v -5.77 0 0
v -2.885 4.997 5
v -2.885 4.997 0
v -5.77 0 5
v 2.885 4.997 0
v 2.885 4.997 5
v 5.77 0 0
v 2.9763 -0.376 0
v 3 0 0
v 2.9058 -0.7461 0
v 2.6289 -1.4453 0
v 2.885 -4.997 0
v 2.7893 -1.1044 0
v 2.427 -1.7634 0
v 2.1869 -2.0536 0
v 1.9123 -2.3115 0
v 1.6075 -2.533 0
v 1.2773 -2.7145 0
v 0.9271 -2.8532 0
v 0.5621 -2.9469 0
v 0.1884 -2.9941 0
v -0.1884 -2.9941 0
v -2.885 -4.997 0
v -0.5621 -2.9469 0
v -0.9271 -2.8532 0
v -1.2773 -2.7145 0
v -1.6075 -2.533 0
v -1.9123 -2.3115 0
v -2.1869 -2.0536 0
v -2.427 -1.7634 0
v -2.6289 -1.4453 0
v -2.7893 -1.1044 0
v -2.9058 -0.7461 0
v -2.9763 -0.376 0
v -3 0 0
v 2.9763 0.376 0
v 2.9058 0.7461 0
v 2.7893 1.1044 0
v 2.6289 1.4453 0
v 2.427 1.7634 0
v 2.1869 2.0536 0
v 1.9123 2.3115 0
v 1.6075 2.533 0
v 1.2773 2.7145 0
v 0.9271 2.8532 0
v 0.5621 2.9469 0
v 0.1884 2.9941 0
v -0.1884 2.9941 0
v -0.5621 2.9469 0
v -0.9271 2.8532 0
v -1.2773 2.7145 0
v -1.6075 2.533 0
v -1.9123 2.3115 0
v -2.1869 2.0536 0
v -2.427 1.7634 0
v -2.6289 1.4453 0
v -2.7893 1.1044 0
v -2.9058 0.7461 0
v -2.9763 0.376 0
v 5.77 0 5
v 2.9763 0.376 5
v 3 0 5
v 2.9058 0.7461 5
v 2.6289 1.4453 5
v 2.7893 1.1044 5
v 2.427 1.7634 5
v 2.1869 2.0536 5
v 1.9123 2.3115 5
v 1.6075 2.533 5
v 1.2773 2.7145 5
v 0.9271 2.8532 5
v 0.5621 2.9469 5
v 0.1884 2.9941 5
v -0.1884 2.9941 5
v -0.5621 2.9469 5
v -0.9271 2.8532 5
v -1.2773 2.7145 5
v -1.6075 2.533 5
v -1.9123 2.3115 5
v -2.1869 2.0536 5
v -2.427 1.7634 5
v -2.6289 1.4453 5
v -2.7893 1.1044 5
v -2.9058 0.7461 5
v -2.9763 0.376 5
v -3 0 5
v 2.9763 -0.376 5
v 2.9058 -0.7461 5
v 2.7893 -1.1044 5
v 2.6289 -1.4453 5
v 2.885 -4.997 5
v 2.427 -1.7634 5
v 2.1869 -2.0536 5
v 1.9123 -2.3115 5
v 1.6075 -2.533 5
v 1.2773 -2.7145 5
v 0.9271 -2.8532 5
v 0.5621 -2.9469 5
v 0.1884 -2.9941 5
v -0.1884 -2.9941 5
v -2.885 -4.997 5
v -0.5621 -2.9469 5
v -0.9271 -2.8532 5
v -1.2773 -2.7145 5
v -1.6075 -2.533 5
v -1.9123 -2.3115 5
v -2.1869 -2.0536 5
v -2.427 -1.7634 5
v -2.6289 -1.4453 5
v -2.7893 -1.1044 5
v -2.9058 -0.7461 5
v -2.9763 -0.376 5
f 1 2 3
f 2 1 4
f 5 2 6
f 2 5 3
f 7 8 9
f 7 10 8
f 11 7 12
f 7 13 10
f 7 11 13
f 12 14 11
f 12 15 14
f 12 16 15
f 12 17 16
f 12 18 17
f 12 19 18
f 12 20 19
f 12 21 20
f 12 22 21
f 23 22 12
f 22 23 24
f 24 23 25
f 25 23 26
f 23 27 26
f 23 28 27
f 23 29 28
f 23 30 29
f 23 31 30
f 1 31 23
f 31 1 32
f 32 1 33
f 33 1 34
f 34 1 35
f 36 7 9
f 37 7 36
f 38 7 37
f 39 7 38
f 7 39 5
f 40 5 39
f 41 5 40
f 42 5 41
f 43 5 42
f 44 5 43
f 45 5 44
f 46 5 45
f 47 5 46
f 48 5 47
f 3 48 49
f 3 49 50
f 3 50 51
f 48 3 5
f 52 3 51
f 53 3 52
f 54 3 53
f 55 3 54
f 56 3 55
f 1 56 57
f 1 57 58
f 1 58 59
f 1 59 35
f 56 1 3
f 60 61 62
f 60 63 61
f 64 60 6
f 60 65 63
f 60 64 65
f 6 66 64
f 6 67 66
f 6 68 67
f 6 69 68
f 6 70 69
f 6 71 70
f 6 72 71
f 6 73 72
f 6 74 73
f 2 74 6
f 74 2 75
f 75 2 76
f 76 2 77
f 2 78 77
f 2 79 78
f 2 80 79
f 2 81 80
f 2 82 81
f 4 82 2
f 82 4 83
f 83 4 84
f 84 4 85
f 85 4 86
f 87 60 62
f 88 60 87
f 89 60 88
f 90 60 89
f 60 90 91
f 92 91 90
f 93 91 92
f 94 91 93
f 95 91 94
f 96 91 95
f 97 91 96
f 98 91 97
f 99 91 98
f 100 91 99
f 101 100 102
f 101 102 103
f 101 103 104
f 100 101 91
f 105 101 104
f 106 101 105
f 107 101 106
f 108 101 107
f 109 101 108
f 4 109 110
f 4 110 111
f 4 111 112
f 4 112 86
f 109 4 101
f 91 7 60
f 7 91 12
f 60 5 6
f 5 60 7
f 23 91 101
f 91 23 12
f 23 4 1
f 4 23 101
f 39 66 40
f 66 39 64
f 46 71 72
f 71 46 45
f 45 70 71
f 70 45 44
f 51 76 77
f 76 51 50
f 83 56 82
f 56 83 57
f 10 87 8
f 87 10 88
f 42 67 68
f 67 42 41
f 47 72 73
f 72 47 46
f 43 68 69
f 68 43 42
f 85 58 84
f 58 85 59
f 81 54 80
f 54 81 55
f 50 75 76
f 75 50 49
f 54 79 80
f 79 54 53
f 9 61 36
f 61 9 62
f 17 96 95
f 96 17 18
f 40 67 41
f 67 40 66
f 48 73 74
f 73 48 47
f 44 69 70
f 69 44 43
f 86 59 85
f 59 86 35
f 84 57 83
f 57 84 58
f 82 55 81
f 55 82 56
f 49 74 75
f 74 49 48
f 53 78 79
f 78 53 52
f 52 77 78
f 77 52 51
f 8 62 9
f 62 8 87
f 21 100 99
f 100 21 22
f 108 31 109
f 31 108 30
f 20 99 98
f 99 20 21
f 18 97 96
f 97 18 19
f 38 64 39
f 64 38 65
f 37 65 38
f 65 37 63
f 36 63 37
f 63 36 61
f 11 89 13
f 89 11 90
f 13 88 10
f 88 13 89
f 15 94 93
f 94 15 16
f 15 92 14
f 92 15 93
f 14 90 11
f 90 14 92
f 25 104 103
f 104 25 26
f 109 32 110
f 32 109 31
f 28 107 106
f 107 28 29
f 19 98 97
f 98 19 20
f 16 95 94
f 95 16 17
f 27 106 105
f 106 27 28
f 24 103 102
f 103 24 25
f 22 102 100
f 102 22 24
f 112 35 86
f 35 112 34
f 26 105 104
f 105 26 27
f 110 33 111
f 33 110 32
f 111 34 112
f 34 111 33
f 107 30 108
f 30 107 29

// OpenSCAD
$fn = 50;


difference() {
	union() {
		translate(v = [0, 0, 0]) {
			rotate(a = [0, 0, 0]) {
				#translate(v = [0, 0, 0]) {
					rotate(a = [0, 0, 0]) {
						linear_extrude(height = 5) {
							polygon(points = [[5.7700000000, 0.0000000000], [2.8850000000, 4.9969665798], [-2.8850000000, 4.9969665798], [-5.7700000000, 0.0000000000], [-2.8850000000, -4.9969665798], [2.8850000000, -4.9969665798]]);
						}
					}
				}
			}
		}
	}
	union() {
		translate(v = [0, 0, -10]) {
			rotate(a = [0, 0, 0]) {
				cylinder(h = 100, r = 3.0000000000);
			}
		}
	}
}
